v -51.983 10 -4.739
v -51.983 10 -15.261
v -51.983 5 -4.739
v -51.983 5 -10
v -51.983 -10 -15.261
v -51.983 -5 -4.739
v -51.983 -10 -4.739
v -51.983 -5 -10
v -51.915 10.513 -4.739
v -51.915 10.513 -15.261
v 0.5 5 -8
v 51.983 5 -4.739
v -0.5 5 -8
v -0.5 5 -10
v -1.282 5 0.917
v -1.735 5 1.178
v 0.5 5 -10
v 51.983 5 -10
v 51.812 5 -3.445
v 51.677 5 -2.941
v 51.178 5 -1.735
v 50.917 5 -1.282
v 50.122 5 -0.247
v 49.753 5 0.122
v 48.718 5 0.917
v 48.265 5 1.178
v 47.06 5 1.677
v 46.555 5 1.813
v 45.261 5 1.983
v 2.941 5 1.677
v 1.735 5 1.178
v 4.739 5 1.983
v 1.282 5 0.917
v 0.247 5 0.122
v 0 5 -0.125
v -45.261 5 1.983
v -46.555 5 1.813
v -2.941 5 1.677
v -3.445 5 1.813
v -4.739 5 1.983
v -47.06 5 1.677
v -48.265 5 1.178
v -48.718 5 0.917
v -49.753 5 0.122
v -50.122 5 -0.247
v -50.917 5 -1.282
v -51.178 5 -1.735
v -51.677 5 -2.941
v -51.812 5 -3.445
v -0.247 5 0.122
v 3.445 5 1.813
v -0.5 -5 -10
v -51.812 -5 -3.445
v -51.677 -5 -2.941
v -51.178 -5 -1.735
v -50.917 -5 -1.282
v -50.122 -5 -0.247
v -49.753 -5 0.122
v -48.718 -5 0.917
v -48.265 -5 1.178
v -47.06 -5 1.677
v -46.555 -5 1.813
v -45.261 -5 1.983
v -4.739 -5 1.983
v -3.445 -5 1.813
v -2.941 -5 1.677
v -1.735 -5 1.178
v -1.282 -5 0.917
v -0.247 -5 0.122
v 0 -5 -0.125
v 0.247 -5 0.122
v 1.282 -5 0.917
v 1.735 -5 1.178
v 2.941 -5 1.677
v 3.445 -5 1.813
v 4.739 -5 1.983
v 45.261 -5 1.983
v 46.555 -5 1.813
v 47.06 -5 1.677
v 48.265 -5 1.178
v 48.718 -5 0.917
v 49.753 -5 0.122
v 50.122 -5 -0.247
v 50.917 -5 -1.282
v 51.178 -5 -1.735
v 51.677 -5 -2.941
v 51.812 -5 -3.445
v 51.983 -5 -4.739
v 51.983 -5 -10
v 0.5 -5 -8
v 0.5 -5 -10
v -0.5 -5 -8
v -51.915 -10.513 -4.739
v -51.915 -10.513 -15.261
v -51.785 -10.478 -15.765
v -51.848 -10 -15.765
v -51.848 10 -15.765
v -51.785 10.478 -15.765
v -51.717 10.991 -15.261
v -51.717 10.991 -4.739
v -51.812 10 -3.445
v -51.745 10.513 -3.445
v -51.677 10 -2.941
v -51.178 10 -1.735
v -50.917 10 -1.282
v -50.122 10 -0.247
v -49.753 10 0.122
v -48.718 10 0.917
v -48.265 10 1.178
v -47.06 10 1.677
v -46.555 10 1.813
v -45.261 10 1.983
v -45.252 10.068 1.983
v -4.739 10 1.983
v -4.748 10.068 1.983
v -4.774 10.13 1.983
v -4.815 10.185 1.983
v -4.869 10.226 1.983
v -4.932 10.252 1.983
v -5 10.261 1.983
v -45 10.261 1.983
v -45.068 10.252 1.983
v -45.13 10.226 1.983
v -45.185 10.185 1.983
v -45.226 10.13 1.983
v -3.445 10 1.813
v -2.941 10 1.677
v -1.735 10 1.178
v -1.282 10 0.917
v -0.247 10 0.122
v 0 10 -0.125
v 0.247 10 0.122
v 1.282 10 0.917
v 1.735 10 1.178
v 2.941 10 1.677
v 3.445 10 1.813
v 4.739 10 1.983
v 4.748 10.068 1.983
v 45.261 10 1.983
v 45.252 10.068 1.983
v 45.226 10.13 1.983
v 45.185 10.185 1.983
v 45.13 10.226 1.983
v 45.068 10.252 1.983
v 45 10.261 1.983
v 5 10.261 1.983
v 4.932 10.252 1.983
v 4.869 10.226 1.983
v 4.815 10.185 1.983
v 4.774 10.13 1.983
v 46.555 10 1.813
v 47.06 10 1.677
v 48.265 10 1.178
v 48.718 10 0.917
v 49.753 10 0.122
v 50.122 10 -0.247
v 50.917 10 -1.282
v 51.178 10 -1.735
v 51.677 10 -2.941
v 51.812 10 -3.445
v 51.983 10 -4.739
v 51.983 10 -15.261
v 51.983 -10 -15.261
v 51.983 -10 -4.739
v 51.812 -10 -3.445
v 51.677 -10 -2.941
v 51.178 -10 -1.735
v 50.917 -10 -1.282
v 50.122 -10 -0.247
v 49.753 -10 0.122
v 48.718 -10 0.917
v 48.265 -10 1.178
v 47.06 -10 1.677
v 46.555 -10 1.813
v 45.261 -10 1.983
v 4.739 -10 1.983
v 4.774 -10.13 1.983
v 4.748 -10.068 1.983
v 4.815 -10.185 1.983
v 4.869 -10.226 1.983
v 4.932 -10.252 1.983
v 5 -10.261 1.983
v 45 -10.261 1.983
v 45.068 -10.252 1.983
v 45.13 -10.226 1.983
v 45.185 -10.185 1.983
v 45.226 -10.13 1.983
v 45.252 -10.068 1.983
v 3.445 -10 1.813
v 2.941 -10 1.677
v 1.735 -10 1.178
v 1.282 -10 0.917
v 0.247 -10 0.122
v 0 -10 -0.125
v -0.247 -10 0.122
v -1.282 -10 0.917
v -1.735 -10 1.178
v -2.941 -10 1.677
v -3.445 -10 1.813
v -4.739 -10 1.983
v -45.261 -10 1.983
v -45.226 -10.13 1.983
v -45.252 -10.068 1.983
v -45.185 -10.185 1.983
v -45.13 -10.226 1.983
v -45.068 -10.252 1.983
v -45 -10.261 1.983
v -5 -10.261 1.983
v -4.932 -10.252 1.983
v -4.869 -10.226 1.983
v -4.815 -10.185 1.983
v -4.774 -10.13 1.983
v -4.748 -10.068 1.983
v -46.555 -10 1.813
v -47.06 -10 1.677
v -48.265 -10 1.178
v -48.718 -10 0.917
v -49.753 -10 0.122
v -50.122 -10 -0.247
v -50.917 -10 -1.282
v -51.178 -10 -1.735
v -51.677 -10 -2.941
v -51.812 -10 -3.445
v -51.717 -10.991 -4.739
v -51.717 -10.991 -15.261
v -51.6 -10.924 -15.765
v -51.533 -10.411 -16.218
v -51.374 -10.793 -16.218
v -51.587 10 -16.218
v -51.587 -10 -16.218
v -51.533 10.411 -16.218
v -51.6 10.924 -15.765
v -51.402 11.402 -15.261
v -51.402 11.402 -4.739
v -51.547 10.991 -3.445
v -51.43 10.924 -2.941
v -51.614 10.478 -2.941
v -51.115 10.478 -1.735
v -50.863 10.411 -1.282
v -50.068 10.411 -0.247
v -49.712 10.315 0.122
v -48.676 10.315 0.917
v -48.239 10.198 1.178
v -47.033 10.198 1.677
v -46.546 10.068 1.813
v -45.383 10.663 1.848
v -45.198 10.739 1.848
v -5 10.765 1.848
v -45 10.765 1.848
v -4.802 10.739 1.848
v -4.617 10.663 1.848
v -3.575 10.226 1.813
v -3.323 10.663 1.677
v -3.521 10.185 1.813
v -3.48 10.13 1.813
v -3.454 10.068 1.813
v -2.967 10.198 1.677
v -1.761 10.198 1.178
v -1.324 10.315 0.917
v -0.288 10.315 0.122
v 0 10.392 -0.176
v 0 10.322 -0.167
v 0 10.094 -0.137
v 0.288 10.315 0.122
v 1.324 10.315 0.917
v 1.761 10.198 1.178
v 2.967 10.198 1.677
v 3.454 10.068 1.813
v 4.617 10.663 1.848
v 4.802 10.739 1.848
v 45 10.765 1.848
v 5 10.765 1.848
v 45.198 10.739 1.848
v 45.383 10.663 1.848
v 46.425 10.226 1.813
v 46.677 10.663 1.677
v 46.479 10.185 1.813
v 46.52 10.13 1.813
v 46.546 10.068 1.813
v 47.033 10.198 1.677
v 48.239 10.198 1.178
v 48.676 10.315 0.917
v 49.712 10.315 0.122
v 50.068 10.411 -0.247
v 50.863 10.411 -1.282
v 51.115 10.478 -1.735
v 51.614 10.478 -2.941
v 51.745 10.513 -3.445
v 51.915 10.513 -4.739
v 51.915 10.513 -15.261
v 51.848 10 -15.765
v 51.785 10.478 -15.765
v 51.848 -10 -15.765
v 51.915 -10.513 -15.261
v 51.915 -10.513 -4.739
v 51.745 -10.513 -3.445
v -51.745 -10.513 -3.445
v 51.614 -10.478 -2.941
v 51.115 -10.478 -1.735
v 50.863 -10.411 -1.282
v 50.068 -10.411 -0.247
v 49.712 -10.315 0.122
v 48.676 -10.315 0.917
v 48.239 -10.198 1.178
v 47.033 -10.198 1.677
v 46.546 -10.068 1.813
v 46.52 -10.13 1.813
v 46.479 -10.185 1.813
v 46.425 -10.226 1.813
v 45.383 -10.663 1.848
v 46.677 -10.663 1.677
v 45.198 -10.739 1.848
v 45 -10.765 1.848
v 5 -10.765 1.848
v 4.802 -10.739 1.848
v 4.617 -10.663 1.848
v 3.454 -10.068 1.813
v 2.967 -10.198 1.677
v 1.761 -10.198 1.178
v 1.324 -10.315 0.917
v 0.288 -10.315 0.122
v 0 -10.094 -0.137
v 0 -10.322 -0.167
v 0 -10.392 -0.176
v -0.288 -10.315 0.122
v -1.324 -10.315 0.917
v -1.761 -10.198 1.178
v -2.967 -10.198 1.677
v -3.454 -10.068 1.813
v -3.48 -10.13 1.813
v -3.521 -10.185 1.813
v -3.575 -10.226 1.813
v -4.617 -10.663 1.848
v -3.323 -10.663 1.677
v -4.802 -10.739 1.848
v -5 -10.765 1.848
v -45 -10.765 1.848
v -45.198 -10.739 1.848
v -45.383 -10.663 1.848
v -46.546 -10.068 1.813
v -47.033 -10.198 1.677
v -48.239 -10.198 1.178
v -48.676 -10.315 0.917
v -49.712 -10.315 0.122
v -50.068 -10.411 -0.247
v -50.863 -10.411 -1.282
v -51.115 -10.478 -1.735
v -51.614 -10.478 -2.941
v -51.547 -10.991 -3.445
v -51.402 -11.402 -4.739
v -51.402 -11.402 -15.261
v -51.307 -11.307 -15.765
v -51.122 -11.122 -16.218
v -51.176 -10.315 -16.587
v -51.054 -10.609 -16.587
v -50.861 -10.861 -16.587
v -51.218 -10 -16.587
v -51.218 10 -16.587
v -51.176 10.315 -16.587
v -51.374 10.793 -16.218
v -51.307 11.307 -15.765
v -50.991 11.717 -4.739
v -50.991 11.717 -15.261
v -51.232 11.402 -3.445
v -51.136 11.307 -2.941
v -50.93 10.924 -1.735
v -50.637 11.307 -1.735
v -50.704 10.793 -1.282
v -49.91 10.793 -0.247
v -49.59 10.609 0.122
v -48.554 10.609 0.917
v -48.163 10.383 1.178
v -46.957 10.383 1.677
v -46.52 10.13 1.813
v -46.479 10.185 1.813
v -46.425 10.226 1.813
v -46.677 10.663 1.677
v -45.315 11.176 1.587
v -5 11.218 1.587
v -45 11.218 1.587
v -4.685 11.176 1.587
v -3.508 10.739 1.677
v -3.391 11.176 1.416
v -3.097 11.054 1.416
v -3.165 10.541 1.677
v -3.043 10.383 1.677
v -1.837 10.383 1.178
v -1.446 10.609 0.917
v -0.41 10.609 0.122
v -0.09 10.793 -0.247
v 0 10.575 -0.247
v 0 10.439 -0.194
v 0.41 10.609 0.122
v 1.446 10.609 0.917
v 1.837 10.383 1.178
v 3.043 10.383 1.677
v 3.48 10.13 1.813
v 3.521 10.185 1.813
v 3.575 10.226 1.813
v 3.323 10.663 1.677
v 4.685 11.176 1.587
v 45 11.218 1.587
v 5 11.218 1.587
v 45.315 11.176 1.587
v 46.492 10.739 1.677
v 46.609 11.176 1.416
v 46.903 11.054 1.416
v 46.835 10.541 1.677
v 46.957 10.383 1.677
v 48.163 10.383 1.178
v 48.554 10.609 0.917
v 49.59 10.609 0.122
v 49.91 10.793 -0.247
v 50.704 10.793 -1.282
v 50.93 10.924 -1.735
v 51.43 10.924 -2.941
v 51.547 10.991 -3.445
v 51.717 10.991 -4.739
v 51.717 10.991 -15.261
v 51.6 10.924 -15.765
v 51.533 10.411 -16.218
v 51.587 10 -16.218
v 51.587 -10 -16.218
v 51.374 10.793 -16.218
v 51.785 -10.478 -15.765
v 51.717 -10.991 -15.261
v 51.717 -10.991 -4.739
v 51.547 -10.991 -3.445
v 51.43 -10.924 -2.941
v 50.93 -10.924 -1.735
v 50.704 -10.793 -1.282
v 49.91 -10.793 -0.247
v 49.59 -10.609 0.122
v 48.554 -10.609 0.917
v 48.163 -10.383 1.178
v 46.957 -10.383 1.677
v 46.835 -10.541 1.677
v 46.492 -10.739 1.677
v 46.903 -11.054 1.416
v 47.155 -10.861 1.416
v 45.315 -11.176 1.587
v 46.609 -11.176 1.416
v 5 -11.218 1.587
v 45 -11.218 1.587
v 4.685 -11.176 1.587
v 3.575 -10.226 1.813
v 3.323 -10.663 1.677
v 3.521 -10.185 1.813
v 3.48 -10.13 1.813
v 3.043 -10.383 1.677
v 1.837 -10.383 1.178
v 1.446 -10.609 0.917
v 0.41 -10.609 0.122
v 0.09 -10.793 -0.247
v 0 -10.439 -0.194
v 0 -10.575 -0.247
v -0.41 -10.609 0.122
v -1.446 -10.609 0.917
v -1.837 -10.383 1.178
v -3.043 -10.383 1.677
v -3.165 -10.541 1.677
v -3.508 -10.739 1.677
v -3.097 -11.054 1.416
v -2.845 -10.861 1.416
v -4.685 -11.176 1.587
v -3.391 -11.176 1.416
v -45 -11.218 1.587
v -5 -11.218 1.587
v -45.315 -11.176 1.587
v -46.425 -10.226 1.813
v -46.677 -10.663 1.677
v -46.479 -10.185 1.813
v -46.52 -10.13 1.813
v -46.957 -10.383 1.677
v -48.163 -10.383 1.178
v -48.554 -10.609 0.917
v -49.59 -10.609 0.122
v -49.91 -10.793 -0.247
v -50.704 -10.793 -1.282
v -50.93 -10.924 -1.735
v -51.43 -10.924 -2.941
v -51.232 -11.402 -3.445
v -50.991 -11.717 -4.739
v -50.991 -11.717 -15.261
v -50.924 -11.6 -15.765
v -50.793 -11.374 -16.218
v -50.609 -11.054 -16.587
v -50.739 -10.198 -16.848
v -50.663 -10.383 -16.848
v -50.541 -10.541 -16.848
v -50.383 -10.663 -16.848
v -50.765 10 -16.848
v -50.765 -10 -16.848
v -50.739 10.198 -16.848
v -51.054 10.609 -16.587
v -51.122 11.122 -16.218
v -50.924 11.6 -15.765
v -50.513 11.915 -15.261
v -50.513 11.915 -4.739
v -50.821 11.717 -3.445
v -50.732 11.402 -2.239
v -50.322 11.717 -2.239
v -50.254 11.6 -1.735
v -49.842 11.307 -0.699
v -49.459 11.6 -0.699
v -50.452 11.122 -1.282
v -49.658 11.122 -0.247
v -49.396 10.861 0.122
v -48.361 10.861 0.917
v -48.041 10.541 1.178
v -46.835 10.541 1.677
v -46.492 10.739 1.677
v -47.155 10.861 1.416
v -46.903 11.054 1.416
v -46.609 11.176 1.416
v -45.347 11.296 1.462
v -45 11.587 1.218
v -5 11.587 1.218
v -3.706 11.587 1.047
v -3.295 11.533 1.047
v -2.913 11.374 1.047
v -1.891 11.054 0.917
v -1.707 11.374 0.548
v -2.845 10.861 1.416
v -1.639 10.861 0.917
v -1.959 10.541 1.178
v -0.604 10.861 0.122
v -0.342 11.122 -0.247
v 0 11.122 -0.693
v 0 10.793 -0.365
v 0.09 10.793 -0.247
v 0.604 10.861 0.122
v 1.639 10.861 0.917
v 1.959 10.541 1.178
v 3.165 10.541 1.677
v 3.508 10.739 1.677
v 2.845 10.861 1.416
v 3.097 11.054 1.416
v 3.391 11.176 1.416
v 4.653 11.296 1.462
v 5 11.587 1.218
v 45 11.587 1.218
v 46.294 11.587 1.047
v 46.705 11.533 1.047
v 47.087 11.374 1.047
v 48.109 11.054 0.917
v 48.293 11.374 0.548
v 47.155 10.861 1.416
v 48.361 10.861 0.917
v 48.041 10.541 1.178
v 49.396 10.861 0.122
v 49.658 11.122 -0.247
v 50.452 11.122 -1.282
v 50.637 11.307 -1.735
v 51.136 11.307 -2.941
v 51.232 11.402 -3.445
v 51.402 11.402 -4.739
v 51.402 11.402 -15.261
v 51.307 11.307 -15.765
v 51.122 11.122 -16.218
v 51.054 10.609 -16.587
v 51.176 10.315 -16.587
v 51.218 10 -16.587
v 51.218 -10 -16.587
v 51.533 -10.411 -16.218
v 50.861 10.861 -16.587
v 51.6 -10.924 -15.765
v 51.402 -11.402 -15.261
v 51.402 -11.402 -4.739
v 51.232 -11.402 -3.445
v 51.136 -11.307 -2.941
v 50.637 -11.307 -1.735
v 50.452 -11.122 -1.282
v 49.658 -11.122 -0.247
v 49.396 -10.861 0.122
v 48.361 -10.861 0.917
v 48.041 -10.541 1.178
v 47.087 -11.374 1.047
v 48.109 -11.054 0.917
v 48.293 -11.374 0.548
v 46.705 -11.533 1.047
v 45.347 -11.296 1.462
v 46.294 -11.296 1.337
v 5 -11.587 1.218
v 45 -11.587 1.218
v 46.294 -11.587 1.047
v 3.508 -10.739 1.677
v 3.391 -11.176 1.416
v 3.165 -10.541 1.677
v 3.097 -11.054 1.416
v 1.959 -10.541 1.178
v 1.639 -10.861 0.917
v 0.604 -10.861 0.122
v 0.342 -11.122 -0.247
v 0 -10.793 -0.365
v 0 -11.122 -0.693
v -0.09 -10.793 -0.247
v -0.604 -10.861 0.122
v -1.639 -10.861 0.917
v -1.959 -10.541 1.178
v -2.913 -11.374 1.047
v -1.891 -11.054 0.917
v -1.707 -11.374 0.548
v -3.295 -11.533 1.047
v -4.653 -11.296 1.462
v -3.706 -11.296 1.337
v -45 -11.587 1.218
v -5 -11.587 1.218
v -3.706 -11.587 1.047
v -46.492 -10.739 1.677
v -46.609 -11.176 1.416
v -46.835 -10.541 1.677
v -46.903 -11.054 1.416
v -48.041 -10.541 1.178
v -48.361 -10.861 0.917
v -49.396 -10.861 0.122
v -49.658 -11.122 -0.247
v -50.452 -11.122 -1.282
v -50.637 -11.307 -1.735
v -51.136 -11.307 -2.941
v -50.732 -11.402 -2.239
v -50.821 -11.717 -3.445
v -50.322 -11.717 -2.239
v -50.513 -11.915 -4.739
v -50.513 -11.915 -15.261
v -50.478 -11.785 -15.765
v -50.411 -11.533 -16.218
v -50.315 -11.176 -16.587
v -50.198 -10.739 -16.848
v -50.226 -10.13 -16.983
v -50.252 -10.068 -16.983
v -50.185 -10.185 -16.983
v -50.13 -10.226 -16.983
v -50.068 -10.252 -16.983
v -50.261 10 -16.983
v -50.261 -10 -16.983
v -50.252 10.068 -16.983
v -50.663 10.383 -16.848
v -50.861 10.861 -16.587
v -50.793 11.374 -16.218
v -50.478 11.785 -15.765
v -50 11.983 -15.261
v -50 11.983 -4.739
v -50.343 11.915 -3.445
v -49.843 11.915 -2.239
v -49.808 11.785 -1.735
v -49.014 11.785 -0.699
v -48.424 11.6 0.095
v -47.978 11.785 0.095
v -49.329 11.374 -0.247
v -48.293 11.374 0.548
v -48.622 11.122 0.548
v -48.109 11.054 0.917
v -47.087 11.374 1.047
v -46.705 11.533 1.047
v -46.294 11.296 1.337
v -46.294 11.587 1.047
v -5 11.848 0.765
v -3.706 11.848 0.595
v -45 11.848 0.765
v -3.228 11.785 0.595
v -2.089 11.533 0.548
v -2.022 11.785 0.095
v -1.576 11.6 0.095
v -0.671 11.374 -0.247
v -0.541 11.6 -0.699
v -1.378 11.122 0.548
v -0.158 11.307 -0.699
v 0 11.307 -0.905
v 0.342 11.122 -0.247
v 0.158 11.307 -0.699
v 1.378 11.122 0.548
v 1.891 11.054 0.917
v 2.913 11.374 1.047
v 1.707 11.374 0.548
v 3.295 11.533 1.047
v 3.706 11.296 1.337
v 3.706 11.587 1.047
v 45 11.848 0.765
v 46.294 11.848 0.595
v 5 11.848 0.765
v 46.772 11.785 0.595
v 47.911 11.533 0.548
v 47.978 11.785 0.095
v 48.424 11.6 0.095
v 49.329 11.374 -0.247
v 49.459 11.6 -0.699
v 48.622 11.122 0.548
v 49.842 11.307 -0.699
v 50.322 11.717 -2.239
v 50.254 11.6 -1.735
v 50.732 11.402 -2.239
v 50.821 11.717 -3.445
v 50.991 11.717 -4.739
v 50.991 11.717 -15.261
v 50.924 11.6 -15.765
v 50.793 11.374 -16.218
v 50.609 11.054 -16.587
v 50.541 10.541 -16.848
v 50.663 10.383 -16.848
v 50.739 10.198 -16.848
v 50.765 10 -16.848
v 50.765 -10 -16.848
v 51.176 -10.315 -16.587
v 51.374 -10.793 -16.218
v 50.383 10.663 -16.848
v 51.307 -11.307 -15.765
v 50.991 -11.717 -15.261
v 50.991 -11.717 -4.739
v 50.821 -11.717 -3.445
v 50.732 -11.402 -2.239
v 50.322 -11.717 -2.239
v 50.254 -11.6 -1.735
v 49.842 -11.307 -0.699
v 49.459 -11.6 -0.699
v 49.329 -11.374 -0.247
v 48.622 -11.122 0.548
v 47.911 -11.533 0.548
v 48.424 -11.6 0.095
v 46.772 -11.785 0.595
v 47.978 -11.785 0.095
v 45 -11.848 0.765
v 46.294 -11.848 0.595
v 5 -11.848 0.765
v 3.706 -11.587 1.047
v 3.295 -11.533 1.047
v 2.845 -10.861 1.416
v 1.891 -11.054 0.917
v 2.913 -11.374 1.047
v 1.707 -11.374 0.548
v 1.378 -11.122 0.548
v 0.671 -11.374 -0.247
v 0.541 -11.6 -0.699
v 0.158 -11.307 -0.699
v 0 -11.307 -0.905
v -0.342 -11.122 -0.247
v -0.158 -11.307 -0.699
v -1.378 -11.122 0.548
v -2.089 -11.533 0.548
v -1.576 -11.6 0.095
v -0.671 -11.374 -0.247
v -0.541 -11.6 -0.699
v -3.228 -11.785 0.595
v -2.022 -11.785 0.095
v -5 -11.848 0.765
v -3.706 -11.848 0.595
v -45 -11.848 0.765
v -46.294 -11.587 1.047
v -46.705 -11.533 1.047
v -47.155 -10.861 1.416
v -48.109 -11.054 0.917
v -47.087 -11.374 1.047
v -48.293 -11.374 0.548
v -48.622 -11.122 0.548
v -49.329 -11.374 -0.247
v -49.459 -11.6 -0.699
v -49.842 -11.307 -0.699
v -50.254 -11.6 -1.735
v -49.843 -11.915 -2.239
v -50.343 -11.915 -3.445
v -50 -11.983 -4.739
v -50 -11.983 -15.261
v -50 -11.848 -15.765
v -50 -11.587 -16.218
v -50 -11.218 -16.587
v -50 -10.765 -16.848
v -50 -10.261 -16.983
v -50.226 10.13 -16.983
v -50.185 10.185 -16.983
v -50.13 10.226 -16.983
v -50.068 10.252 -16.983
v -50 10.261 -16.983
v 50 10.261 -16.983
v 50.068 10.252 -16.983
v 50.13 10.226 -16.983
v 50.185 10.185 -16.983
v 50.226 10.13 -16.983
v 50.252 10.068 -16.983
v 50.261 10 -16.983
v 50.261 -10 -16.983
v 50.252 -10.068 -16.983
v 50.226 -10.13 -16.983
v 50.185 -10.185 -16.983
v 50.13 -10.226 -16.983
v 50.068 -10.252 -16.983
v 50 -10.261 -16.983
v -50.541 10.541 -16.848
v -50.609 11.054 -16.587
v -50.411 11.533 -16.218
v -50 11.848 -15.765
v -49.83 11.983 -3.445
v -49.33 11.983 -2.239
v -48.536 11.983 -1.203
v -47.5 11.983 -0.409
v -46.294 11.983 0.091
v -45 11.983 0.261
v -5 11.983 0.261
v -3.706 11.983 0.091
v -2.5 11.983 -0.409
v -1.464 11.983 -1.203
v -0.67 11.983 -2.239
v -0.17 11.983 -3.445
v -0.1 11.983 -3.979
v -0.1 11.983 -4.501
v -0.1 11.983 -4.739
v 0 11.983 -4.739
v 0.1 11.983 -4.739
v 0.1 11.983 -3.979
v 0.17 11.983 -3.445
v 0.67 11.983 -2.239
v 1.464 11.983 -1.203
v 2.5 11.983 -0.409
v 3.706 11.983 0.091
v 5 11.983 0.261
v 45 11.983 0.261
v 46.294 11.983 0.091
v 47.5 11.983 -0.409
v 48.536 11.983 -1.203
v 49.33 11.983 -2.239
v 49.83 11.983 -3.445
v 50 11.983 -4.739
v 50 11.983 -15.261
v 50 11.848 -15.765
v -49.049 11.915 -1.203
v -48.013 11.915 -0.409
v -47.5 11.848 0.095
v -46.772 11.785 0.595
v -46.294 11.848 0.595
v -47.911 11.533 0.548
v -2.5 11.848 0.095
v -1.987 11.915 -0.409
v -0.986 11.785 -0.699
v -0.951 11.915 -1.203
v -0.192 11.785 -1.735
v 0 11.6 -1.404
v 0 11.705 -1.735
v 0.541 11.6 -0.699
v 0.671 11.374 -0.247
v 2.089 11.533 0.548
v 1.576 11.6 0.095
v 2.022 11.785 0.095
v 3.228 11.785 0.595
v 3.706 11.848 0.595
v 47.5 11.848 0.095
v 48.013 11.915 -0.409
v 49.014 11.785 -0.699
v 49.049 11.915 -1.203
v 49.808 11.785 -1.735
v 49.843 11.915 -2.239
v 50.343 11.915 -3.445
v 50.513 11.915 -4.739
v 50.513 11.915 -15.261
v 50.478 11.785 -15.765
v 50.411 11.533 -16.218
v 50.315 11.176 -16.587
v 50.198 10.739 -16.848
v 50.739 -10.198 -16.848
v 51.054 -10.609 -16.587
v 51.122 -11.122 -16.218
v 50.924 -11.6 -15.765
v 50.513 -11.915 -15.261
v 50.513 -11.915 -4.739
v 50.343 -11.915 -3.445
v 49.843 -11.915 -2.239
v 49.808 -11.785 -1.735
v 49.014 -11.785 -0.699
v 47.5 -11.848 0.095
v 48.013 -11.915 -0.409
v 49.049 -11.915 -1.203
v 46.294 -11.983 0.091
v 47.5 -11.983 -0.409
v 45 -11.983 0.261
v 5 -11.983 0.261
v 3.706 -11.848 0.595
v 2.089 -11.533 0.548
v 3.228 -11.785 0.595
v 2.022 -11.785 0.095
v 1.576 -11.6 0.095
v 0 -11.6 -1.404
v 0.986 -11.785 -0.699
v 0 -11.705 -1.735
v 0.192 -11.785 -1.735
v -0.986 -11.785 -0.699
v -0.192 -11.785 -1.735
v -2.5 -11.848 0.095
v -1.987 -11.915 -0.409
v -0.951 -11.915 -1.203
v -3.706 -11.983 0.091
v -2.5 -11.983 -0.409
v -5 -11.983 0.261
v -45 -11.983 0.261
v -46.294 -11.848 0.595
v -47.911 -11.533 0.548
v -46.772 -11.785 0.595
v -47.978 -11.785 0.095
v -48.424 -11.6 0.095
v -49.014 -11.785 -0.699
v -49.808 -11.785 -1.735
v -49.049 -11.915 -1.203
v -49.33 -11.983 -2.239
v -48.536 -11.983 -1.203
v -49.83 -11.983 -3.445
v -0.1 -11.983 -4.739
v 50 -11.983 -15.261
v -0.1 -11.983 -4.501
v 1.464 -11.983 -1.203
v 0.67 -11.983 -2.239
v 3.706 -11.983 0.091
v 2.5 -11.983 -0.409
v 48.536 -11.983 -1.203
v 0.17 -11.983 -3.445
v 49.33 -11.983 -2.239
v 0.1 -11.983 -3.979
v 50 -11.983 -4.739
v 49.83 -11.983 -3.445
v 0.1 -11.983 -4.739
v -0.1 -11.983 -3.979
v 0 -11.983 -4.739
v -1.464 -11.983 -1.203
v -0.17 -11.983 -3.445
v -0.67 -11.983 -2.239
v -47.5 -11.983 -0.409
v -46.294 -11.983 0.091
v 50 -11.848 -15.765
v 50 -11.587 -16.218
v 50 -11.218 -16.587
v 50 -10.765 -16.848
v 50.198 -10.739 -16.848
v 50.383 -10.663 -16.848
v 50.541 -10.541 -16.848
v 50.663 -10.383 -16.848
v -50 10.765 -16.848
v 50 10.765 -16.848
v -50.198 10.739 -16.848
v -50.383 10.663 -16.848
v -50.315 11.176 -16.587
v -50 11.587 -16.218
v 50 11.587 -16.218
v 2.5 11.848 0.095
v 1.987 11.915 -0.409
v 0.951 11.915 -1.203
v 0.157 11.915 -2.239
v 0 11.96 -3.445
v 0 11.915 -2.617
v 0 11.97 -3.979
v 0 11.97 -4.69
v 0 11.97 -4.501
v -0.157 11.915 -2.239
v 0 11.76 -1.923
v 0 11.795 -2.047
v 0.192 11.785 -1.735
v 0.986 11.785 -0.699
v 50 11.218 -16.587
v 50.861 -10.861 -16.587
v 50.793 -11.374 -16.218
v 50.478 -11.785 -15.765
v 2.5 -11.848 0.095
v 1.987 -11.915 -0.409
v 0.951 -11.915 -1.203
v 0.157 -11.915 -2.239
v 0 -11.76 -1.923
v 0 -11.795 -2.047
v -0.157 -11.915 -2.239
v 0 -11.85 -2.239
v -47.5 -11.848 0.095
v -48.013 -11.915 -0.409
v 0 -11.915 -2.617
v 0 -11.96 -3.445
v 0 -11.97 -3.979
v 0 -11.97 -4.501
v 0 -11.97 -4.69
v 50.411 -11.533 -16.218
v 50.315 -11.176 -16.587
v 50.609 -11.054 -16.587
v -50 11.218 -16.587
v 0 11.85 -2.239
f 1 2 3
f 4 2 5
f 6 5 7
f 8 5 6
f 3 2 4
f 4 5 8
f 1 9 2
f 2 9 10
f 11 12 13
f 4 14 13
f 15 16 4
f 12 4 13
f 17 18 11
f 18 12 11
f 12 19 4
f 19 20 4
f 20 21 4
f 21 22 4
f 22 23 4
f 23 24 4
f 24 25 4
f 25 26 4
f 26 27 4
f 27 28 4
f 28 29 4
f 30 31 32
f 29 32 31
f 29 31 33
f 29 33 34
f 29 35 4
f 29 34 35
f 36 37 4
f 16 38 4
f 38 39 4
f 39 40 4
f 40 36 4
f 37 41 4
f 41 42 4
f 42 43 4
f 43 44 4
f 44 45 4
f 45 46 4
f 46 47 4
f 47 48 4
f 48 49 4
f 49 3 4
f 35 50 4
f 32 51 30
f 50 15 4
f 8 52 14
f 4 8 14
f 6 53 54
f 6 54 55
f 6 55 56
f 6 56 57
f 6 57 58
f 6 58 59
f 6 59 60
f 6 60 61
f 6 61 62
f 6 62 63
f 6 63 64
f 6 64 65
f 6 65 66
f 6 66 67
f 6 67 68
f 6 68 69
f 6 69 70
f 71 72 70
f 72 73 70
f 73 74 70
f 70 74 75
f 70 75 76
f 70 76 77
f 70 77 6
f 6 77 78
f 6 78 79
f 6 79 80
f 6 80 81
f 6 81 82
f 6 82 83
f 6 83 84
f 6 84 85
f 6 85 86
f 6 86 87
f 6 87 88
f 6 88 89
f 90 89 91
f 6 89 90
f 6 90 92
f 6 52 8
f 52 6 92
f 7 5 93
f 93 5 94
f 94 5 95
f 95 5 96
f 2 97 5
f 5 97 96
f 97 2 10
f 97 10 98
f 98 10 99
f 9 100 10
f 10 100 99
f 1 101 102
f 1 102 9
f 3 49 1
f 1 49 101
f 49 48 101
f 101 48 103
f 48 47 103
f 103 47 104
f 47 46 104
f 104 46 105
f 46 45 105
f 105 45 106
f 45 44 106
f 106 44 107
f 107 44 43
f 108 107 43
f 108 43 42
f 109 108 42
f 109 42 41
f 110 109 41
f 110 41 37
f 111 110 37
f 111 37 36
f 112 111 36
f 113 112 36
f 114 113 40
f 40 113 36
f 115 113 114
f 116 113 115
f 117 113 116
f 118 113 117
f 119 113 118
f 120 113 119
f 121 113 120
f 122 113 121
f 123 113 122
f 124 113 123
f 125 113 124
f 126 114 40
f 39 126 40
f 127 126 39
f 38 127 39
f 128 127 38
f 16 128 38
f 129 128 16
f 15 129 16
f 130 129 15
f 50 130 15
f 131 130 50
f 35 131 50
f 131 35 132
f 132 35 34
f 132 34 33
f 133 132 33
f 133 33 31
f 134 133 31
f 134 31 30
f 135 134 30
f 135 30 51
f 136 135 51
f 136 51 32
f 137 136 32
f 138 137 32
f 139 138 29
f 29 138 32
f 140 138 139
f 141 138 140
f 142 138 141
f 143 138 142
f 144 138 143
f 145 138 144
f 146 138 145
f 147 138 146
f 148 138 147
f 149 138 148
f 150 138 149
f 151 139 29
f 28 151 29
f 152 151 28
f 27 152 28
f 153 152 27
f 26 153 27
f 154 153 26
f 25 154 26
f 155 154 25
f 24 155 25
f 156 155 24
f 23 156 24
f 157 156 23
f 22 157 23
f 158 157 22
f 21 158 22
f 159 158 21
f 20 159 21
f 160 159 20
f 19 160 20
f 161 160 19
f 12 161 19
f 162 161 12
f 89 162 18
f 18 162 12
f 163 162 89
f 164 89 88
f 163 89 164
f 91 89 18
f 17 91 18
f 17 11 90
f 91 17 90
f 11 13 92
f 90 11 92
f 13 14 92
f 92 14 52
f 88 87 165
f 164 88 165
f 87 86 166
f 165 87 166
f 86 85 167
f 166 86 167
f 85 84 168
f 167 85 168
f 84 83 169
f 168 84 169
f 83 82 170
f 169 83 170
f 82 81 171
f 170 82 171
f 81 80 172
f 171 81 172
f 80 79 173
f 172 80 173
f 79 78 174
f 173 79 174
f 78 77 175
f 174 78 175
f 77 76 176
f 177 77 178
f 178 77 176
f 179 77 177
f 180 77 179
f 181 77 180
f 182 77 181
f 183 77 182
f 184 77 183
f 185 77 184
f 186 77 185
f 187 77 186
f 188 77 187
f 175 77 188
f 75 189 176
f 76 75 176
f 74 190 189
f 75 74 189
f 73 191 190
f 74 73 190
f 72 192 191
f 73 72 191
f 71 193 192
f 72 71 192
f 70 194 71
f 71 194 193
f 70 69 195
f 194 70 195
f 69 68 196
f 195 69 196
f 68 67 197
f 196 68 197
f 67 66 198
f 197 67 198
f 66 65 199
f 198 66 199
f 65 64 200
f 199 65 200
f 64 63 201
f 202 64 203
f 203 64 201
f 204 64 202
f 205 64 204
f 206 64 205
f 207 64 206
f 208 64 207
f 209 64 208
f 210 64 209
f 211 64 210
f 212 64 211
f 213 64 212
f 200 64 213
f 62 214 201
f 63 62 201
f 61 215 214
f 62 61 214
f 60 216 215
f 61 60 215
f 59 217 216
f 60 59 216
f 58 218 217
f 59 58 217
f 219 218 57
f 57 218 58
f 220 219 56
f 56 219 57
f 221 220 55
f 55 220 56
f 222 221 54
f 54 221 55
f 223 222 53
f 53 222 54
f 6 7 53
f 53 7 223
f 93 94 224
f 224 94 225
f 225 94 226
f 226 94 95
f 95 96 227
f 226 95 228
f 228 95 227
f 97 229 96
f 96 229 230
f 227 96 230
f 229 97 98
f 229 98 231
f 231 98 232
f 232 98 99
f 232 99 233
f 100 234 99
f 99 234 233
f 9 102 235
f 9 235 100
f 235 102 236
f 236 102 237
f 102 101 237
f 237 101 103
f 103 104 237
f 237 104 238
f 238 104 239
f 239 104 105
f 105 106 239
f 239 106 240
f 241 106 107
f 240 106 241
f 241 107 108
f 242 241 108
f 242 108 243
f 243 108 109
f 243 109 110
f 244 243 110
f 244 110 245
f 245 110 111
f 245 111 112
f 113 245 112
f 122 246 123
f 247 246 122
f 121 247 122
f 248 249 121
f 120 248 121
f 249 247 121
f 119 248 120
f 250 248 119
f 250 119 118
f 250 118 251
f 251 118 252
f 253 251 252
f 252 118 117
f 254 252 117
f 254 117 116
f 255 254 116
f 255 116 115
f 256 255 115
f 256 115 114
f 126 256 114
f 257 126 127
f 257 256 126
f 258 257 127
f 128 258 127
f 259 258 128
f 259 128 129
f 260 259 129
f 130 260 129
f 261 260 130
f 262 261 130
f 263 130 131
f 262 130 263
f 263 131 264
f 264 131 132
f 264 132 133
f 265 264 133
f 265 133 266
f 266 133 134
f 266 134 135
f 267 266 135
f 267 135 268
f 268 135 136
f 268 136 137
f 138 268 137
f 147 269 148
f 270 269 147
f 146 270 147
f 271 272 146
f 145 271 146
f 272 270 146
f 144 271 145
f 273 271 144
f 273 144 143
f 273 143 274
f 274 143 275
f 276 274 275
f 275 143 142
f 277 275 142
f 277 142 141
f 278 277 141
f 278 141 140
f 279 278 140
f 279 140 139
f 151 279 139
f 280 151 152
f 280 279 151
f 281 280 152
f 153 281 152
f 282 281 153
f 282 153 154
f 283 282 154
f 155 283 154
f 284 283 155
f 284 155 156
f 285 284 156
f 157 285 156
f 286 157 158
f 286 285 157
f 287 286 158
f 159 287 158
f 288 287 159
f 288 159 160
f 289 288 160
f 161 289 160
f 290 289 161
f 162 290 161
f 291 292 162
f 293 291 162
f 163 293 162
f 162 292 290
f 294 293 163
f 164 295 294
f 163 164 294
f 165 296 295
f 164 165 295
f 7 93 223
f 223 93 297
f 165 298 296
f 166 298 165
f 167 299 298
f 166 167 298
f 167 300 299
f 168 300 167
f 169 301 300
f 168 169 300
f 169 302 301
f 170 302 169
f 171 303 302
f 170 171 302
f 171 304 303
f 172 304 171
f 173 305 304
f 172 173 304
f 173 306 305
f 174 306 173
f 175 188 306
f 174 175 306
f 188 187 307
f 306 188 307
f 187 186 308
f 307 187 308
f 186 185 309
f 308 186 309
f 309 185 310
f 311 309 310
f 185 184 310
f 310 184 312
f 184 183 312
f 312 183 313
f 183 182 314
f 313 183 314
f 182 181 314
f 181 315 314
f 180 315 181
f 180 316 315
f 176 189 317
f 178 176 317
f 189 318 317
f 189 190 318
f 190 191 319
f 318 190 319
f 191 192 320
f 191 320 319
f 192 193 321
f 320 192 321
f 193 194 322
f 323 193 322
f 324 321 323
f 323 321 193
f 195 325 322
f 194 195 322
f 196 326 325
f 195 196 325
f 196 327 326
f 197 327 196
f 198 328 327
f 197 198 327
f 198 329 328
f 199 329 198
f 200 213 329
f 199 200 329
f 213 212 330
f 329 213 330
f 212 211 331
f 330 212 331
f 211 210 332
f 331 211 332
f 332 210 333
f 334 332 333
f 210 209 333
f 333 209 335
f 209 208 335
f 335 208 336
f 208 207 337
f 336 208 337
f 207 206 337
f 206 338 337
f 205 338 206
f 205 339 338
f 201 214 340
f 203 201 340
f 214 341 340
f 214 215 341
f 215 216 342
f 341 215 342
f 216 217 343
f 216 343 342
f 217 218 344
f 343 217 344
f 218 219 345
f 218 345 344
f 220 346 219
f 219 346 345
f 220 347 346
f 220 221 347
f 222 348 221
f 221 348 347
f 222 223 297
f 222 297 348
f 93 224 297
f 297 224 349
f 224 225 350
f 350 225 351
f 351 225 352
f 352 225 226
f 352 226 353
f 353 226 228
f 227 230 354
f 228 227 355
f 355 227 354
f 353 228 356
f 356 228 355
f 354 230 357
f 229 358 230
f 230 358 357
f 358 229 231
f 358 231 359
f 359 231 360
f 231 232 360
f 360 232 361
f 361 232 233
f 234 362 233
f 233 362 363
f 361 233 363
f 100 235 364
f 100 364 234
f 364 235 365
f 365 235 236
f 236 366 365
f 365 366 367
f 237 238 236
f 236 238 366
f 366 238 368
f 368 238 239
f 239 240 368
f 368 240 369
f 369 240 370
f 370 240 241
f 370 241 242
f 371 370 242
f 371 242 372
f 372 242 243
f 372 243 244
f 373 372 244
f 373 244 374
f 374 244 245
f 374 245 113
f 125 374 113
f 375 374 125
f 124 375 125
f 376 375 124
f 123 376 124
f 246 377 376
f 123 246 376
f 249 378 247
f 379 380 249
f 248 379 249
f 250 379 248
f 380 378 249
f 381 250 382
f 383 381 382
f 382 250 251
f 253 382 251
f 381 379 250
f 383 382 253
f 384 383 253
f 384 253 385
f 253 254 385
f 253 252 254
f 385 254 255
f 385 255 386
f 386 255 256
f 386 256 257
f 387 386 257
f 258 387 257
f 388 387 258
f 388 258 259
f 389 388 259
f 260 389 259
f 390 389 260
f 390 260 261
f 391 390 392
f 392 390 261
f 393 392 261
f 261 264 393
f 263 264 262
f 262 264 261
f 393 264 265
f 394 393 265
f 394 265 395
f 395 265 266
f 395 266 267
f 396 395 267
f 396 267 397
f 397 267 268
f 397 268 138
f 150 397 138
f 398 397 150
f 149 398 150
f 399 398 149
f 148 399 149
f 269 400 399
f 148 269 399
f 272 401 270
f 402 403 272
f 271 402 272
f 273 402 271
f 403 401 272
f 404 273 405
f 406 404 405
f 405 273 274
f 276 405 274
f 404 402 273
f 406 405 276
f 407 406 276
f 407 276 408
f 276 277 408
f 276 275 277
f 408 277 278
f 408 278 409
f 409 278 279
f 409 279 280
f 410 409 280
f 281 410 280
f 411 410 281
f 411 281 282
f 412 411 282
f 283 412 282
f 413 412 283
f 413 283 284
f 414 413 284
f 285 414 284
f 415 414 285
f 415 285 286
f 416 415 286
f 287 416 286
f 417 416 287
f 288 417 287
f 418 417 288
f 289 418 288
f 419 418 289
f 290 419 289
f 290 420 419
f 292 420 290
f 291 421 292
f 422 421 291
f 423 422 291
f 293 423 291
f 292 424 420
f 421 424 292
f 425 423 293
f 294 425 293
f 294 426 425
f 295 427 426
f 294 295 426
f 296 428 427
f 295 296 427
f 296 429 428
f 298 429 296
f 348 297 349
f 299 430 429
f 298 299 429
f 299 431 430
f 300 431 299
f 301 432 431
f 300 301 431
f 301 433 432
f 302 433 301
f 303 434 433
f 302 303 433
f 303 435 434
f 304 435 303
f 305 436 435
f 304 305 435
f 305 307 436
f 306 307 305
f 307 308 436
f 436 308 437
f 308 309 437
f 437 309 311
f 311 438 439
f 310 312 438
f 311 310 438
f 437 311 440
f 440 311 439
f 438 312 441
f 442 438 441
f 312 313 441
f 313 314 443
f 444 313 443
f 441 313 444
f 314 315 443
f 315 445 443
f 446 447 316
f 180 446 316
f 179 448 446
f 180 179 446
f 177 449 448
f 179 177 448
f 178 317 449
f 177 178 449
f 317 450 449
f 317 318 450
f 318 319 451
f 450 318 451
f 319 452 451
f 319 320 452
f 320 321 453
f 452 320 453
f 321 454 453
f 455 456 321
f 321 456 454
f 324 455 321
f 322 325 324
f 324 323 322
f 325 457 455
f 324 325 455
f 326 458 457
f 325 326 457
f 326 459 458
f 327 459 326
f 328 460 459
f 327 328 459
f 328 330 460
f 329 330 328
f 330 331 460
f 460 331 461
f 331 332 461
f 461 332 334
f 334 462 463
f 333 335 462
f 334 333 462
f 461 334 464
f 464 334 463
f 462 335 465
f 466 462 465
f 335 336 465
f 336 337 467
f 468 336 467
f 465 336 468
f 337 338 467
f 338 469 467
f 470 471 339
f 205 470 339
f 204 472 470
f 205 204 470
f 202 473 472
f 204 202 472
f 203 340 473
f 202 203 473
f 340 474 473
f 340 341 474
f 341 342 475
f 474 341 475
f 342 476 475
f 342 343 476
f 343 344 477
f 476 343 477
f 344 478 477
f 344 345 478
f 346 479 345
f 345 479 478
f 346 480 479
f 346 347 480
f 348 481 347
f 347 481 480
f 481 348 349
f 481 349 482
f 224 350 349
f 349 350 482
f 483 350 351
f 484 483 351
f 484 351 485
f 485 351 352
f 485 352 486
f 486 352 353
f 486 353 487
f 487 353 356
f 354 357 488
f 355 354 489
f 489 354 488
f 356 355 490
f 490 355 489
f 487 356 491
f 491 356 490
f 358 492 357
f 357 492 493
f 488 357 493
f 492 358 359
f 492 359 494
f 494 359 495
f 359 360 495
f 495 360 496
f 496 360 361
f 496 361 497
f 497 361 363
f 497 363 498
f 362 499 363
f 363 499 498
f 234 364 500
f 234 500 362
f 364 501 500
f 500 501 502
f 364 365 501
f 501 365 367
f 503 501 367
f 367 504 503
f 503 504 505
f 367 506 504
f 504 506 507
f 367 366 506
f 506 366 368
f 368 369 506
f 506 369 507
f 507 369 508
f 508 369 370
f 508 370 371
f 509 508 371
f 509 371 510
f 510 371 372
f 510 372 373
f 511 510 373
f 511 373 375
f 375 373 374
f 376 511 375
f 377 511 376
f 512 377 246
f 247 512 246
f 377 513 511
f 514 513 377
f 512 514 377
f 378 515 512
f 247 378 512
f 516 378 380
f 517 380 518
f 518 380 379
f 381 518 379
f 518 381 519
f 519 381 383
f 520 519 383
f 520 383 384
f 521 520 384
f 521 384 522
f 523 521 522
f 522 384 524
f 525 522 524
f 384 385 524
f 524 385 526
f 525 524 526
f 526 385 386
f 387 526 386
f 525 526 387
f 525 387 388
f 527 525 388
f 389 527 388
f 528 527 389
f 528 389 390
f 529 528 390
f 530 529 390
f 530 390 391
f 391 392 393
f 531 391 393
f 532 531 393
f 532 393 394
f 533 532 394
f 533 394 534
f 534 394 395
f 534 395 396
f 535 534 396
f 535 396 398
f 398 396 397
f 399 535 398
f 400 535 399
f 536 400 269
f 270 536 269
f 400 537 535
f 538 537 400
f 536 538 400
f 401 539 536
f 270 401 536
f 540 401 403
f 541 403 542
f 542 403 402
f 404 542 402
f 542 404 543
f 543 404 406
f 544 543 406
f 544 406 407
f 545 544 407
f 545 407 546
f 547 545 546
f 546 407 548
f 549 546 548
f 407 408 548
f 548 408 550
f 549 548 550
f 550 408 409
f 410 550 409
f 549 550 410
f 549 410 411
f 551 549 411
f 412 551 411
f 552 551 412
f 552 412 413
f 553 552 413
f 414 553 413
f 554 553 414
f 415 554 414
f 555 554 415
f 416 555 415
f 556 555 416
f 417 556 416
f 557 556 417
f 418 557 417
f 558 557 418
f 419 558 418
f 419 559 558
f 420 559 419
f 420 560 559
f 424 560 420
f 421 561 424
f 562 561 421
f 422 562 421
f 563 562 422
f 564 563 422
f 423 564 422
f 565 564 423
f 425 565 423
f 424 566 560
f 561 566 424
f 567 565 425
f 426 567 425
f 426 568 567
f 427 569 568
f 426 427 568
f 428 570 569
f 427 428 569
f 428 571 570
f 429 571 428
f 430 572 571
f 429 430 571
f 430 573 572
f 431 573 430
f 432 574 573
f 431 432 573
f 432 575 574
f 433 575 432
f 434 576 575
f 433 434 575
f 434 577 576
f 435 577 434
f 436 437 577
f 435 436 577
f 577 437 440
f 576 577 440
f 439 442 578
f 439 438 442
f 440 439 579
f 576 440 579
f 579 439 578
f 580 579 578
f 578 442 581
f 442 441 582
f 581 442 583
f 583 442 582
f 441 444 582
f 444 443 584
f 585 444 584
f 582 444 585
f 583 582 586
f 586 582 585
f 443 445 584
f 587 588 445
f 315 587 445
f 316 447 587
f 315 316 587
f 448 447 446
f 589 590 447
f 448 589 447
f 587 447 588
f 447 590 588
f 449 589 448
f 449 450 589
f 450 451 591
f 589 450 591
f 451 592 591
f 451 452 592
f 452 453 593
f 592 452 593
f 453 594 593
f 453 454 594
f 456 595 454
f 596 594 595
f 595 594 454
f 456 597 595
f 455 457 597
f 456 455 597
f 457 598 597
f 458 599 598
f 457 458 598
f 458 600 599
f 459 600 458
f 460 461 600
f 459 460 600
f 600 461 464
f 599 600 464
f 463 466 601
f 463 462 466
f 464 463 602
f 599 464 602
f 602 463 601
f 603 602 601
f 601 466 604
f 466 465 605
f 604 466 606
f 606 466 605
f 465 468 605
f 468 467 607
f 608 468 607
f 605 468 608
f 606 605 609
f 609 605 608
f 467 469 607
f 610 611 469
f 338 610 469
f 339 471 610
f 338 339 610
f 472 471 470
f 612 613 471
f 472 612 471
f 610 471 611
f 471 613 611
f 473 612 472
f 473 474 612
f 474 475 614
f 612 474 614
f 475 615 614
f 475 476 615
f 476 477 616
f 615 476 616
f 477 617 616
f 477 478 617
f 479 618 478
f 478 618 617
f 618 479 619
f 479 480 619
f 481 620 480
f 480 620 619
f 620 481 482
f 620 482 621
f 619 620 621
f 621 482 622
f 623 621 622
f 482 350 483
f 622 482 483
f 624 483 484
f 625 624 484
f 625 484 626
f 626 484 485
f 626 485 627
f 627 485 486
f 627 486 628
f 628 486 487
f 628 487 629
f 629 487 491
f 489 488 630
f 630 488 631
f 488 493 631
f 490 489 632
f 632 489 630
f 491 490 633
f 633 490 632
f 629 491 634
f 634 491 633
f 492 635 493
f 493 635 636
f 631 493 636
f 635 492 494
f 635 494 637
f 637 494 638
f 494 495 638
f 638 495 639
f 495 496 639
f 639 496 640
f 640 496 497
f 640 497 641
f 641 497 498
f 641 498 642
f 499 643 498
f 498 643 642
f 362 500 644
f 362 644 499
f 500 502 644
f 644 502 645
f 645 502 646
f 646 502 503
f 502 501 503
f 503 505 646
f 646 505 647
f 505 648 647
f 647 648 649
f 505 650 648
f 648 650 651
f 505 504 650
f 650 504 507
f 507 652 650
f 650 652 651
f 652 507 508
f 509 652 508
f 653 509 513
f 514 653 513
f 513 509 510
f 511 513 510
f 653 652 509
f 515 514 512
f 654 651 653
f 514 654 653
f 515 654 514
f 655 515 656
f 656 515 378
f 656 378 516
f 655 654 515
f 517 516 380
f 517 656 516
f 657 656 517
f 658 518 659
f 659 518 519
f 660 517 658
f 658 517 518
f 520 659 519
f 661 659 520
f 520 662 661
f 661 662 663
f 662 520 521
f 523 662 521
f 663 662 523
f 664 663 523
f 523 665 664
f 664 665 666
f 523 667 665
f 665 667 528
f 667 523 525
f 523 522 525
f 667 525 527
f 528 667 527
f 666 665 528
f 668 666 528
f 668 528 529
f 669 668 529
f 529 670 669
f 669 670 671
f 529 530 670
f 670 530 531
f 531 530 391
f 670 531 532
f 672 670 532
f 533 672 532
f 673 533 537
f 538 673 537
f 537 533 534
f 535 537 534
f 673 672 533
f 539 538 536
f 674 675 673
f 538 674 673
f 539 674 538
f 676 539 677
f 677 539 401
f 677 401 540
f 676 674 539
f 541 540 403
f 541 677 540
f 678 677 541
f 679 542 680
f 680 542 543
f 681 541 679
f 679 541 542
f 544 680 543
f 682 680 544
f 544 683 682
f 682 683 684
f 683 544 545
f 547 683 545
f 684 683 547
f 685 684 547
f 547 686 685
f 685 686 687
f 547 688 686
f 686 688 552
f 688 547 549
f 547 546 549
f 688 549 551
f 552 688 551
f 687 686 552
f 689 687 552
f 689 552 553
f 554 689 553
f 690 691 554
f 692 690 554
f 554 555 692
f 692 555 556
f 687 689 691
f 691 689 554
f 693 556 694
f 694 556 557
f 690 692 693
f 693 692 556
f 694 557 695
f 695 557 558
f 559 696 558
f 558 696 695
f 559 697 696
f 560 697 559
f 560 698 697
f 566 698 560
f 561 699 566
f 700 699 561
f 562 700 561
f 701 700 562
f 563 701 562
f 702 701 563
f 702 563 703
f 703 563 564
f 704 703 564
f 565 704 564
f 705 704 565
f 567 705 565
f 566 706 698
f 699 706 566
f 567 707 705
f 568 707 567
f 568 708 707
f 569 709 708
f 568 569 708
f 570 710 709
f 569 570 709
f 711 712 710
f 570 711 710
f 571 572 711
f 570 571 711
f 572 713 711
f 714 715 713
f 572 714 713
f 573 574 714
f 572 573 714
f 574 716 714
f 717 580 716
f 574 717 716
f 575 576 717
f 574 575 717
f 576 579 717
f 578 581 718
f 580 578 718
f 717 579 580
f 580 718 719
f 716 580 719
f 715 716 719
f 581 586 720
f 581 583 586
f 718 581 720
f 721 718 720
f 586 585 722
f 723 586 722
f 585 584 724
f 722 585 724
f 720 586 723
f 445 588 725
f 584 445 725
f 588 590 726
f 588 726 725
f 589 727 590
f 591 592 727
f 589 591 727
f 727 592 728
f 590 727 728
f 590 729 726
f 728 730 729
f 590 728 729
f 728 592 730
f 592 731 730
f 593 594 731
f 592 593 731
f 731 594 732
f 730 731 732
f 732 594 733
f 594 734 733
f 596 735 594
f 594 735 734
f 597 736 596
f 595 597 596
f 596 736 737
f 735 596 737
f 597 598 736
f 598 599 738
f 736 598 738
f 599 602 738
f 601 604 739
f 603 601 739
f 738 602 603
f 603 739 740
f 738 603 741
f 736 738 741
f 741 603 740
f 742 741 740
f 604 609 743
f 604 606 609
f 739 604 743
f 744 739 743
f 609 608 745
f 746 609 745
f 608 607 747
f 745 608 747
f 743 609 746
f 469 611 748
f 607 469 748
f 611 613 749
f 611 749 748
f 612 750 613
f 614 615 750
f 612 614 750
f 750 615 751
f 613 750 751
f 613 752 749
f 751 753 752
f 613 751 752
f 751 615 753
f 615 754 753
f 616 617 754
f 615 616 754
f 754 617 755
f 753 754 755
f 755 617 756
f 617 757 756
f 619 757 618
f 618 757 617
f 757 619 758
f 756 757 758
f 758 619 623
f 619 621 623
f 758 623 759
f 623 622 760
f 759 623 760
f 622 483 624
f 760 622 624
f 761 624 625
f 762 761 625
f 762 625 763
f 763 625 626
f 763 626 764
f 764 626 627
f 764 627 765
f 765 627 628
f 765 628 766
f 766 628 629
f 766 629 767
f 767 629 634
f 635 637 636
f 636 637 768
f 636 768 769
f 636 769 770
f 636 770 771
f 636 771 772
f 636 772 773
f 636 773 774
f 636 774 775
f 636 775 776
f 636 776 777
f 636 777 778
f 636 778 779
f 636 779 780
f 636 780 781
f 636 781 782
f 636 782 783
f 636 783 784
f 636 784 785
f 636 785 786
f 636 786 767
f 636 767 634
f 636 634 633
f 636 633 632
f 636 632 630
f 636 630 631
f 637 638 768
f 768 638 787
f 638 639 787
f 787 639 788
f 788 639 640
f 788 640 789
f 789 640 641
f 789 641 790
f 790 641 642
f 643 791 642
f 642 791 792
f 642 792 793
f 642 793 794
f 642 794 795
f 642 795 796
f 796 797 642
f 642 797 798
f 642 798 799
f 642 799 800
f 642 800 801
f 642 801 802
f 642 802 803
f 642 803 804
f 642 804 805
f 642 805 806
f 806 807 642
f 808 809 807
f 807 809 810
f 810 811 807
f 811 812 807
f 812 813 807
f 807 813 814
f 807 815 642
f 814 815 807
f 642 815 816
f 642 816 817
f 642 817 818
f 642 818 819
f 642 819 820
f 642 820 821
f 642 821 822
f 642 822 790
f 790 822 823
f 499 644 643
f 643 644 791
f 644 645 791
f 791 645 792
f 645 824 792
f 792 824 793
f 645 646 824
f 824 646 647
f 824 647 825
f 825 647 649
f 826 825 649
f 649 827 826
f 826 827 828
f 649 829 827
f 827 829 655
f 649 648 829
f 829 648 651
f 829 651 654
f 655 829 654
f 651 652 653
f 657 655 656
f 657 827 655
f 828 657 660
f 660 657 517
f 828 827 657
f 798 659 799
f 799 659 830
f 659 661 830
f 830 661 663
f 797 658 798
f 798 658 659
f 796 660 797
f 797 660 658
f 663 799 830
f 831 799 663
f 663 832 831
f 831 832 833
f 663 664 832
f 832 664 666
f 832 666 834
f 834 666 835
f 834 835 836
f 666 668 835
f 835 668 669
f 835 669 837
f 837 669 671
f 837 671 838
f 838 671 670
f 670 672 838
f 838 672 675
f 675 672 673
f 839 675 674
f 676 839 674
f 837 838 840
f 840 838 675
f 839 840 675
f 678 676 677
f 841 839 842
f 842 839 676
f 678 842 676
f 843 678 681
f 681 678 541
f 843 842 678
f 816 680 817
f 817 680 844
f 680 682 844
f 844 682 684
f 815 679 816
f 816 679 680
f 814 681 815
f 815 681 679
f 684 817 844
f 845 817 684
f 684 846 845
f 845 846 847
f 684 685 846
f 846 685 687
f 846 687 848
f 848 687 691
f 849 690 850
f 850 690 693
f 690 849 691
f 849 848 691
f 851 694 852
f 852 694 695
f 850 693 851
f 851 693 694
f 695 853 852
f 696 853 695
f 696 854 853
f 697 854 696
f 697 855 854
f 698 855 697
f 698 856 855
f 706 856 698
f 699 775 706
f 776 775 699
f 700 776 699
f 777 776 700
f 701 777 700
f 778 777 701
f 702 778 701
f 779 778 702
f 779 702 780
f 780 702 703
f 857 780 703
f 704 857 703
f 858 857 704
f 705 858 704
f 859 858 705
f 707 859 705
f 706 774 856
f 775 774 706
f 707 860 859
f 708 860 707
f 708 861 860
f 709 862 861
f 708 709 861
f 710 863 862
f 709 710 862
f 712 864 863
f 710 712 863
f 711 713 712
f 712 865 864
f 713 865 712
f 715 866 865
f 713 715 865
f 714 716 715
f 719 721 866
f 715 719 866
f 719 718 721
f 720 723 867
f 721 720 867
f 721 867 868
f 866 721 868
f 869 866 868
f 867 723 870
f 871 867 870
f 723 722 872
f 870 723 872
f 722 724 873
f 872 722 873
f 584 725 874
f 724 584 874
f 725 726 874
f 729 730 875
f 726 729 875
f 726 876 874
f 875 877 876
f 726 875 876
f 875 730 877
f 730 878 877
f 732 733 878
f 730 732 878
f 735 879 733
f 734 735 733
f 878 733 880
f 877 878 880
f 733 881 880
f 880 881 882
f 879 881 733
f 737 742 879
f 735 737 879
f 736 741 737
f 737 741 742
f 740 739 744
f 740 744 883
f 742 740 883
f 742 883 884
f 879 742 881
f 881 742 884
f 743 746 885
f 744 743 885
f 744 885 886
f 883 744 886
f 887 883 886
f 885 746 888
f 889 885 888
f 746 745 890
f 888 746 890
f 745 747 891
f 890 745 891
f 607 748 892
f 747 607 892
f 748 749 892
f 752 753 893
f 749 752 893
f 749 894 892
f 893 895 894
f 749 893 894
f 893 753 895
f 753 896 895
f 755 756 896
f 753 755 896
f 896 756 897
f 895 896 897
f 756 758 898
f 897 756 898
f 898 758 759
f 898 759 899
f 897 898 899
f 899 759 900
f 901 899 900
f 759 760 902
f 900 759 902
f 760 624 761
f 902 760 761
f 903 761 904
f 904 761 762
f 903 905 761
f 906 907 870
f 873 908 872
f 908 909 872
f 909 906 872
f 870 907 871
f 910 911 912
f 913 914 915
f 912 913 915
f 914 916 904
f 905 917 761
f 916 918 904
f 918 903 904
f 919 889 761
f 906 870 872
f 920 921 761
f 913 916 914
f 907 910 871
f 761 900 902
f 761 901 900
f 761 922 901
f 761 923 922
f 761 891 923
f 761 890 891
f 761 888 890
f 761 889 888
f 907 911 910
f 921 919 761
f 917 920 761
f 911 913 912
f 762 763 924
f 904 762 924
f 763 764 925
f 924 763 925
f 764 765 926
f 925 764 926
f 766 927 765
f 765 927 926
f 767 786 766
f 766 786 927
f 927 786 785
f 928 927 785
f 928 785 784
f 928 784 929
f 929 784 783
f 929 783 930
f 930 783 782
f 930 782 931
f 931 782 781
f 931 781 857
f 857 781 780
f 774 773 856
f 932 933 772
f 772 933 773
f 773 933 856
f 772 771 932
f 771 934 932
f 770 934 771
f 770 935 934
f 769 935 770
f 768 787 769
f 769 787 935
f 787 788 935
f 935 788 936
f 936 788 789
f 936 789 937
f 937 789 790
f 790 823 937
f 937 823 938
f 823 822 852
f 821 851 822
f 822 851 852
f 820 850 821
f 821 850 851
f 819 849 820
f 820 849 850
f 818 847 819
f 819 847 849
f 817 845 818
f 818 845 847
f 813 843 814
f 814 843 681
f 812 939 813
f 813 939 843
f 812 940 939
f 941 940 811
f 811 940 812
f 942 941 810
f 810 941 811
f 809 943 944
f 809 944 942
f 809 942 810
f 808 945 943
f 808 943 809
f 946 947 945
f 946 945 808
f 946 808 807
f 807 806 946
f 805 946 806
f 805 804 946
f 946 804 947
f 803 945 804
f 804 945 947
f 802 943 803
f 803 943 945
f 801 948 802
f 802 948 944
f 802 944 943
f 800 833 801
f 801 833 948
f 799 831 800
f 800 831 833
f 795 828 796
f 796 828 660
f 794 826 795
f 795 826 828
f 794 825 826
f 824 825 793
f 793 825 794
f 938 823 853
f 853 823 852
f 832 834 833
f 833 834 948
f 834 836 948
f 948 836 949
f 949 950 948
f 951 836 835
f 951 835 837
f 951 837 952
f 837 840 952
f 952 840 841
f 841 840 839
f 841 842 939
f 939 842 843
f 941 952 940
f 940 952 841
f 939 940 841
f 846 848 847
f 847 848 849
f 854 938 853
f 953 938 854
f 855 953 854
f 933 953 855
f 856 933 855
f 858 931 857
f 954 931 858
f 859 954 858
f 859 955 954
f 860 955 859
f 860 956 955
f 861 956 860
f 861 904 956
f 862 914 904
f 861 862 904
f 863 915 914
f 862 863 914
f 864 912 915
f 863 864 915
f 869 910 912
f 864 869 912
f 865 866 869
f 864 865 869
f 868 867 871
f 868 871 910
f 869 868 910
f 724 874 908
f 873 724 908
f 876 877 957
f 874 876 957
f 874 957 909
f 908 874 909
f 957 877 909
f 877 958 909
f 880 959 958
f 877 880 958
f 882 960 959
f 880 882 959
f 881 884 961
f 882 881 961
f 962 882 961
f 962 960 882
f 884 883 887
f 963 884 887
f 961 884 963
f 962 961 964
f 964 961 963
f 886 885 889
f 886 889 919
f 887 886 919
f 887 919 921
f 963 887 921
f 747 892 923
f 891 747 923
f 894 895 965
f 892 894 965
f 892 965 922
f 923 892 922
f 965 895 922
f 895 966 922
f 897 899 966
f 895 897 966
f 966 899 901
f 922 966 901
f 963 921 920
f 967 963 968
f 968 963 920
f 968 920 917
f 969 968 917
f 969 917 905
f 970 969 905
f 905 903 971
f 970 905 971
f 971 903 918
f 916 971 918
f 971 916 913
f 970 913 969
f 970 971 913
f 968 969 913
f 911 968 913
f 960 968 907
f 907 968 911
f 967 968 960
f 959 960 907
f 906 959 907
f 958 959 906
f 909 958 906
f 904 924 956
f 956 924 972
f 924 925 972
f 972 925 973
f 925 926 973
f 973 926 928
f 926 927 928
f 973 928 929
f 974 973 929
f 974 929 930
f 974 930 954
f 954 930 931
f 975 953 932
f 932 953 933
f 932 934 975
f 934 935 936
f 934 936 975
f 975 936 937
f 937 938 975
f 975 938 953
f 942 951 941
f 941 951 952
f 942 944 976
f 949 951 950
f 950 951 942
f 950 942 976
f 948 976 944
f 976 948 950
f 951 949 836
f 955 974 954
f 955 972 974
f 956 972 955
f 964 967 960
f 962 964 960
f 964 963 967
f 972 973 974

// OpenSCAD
/**
 * Shower door clip.
 *
 * This is something I designed to slide on top of my class shower door
 * and the adjacent glass wall pane, to prevent it from being easily
 * opened.
 *
 * It's a safety device to prevent my kids from opening the heavy door
 * and then trapping their fingers in it.
 *
 * Joe Walnes, 2012
 * License: http://creativecommons.org/licenses/by/3.0/
 */

// Makes it easier to 3D print
upside_down = true; 

// Special OpenSCAD variable for arc segments in cylinders/spheres.
// 6 for fast renders, 24 for smooth renders
$fn = 24;

// Smooth outer edges: Looks nicer, but slows down rendering
smooth_outer_edges = true;

// Parametric dimensions
channel_thickness = 10;
channel_depth	= 10;
divider_thickness = 1;
divider_height = 2;
wall_thickness = 5;
outer_length = 100;
fillet_radius = 5;
minkowski_radius = 2;
fudge = 0.1;
additional_hollow = 3;

// Main volume of object.
module main_volume() {
	difference() {
	
		// Main volume
		translate(v=[-outer_length / 2, -channel_thickness / 2 - wall_thickness, 0]) {
			cube(center=false, size=[
			 	outer_length,
				channel_thickness + wall_thickness * 2,
				channel_depth + wall_thickness
			]);
		}
	
		// Subtract 4 fillets (large arcs at ends and in middle)
		translate(v=[-outer_length / 2 + fillet_radius, -channel_thickness / 2 - wall_thickness, fillet_radius]) {
			mirror([1, 0, 1]) fillet();
		}
		translate(v=[outer_length / 2 - fillet_radius, -channel_thickness / 2 - wall_thickness, fillet_radius]) {
			mirror([0, 0, 1]) fillet();
		}
		translate(v=[-fillet_radius, -channel_thickness / 2 - wall_thickness, fillet_radius]) {
			mirror([0, 0, 1]) fillet();
		}
		translate(v=[fillet_radius, -channel_thickness / 2 - wall_thickness, fillet_radius]) {
			mirror([1, 0, 1]) fillet();
		}
	}
}

// A little quarter of a cylinder segment that's used to round out the
// end stops and the middle divide.
module fillet() {
	difference() {
		cube(center=false, size=[
			fillet_radius + fudge,
			channel_thickness + wall_thickness * 2,
			fillet_radius + fudge
		]);
		intersection() {
			cube(center=false, size=[
				fillet_radius, 
				channel_thickness + wall_thickness * 2,
				fillet_radius]);
			rotate(a=[-90, 0, 0]) {
				cylinder(h=channel_thickness + wall_thickness * 2 + fudge, r=fillet_radius);
			}
		}
	}
}

// Space occupied by doors. This will be subtracted from main volume.
module hollow_volume() {
	difference() {
		// Top of doors
		translate(v=[-outer_length / 2 - additional_hollow, -channel_depth / 2, -additional_hollow]) {	
			cube(center=false, size=[
				outer_length + additional_hollow * 2,
				channel_thickness,
				channel_depth + additional_hollow
			]);
		}

		// Slight gap between doors
		translate(v=[-divider_thickness / 2, -channel_thickness / 2, channel_depth - divider_height]) {
			cube(center=false, size=[
				divider_thickness,
				channel_thickness,
				divider_height
			]);
		}
	}
}

module main() {
	difference() {
		// Minkowski sum of main volume and a small sphere gives the smooth bubbly edges.
		// See http://www.cgal.org/Manual/latest/doc_html/cgal_manual/Minkowski_sum_3/Chapter_main.html
		if (smooth_outer_edges) {
			minkowski() {
				main_volume();
				sphere(r=minkowski_radius);
			}
		} else {
			main_volume();
		}

		// Substract the space where the doors go.
		hollow_volume();
	}
}

// Go!
if (upside_down) {
	rotate([180, 0, 0]) main();
} else {
	main();
}
